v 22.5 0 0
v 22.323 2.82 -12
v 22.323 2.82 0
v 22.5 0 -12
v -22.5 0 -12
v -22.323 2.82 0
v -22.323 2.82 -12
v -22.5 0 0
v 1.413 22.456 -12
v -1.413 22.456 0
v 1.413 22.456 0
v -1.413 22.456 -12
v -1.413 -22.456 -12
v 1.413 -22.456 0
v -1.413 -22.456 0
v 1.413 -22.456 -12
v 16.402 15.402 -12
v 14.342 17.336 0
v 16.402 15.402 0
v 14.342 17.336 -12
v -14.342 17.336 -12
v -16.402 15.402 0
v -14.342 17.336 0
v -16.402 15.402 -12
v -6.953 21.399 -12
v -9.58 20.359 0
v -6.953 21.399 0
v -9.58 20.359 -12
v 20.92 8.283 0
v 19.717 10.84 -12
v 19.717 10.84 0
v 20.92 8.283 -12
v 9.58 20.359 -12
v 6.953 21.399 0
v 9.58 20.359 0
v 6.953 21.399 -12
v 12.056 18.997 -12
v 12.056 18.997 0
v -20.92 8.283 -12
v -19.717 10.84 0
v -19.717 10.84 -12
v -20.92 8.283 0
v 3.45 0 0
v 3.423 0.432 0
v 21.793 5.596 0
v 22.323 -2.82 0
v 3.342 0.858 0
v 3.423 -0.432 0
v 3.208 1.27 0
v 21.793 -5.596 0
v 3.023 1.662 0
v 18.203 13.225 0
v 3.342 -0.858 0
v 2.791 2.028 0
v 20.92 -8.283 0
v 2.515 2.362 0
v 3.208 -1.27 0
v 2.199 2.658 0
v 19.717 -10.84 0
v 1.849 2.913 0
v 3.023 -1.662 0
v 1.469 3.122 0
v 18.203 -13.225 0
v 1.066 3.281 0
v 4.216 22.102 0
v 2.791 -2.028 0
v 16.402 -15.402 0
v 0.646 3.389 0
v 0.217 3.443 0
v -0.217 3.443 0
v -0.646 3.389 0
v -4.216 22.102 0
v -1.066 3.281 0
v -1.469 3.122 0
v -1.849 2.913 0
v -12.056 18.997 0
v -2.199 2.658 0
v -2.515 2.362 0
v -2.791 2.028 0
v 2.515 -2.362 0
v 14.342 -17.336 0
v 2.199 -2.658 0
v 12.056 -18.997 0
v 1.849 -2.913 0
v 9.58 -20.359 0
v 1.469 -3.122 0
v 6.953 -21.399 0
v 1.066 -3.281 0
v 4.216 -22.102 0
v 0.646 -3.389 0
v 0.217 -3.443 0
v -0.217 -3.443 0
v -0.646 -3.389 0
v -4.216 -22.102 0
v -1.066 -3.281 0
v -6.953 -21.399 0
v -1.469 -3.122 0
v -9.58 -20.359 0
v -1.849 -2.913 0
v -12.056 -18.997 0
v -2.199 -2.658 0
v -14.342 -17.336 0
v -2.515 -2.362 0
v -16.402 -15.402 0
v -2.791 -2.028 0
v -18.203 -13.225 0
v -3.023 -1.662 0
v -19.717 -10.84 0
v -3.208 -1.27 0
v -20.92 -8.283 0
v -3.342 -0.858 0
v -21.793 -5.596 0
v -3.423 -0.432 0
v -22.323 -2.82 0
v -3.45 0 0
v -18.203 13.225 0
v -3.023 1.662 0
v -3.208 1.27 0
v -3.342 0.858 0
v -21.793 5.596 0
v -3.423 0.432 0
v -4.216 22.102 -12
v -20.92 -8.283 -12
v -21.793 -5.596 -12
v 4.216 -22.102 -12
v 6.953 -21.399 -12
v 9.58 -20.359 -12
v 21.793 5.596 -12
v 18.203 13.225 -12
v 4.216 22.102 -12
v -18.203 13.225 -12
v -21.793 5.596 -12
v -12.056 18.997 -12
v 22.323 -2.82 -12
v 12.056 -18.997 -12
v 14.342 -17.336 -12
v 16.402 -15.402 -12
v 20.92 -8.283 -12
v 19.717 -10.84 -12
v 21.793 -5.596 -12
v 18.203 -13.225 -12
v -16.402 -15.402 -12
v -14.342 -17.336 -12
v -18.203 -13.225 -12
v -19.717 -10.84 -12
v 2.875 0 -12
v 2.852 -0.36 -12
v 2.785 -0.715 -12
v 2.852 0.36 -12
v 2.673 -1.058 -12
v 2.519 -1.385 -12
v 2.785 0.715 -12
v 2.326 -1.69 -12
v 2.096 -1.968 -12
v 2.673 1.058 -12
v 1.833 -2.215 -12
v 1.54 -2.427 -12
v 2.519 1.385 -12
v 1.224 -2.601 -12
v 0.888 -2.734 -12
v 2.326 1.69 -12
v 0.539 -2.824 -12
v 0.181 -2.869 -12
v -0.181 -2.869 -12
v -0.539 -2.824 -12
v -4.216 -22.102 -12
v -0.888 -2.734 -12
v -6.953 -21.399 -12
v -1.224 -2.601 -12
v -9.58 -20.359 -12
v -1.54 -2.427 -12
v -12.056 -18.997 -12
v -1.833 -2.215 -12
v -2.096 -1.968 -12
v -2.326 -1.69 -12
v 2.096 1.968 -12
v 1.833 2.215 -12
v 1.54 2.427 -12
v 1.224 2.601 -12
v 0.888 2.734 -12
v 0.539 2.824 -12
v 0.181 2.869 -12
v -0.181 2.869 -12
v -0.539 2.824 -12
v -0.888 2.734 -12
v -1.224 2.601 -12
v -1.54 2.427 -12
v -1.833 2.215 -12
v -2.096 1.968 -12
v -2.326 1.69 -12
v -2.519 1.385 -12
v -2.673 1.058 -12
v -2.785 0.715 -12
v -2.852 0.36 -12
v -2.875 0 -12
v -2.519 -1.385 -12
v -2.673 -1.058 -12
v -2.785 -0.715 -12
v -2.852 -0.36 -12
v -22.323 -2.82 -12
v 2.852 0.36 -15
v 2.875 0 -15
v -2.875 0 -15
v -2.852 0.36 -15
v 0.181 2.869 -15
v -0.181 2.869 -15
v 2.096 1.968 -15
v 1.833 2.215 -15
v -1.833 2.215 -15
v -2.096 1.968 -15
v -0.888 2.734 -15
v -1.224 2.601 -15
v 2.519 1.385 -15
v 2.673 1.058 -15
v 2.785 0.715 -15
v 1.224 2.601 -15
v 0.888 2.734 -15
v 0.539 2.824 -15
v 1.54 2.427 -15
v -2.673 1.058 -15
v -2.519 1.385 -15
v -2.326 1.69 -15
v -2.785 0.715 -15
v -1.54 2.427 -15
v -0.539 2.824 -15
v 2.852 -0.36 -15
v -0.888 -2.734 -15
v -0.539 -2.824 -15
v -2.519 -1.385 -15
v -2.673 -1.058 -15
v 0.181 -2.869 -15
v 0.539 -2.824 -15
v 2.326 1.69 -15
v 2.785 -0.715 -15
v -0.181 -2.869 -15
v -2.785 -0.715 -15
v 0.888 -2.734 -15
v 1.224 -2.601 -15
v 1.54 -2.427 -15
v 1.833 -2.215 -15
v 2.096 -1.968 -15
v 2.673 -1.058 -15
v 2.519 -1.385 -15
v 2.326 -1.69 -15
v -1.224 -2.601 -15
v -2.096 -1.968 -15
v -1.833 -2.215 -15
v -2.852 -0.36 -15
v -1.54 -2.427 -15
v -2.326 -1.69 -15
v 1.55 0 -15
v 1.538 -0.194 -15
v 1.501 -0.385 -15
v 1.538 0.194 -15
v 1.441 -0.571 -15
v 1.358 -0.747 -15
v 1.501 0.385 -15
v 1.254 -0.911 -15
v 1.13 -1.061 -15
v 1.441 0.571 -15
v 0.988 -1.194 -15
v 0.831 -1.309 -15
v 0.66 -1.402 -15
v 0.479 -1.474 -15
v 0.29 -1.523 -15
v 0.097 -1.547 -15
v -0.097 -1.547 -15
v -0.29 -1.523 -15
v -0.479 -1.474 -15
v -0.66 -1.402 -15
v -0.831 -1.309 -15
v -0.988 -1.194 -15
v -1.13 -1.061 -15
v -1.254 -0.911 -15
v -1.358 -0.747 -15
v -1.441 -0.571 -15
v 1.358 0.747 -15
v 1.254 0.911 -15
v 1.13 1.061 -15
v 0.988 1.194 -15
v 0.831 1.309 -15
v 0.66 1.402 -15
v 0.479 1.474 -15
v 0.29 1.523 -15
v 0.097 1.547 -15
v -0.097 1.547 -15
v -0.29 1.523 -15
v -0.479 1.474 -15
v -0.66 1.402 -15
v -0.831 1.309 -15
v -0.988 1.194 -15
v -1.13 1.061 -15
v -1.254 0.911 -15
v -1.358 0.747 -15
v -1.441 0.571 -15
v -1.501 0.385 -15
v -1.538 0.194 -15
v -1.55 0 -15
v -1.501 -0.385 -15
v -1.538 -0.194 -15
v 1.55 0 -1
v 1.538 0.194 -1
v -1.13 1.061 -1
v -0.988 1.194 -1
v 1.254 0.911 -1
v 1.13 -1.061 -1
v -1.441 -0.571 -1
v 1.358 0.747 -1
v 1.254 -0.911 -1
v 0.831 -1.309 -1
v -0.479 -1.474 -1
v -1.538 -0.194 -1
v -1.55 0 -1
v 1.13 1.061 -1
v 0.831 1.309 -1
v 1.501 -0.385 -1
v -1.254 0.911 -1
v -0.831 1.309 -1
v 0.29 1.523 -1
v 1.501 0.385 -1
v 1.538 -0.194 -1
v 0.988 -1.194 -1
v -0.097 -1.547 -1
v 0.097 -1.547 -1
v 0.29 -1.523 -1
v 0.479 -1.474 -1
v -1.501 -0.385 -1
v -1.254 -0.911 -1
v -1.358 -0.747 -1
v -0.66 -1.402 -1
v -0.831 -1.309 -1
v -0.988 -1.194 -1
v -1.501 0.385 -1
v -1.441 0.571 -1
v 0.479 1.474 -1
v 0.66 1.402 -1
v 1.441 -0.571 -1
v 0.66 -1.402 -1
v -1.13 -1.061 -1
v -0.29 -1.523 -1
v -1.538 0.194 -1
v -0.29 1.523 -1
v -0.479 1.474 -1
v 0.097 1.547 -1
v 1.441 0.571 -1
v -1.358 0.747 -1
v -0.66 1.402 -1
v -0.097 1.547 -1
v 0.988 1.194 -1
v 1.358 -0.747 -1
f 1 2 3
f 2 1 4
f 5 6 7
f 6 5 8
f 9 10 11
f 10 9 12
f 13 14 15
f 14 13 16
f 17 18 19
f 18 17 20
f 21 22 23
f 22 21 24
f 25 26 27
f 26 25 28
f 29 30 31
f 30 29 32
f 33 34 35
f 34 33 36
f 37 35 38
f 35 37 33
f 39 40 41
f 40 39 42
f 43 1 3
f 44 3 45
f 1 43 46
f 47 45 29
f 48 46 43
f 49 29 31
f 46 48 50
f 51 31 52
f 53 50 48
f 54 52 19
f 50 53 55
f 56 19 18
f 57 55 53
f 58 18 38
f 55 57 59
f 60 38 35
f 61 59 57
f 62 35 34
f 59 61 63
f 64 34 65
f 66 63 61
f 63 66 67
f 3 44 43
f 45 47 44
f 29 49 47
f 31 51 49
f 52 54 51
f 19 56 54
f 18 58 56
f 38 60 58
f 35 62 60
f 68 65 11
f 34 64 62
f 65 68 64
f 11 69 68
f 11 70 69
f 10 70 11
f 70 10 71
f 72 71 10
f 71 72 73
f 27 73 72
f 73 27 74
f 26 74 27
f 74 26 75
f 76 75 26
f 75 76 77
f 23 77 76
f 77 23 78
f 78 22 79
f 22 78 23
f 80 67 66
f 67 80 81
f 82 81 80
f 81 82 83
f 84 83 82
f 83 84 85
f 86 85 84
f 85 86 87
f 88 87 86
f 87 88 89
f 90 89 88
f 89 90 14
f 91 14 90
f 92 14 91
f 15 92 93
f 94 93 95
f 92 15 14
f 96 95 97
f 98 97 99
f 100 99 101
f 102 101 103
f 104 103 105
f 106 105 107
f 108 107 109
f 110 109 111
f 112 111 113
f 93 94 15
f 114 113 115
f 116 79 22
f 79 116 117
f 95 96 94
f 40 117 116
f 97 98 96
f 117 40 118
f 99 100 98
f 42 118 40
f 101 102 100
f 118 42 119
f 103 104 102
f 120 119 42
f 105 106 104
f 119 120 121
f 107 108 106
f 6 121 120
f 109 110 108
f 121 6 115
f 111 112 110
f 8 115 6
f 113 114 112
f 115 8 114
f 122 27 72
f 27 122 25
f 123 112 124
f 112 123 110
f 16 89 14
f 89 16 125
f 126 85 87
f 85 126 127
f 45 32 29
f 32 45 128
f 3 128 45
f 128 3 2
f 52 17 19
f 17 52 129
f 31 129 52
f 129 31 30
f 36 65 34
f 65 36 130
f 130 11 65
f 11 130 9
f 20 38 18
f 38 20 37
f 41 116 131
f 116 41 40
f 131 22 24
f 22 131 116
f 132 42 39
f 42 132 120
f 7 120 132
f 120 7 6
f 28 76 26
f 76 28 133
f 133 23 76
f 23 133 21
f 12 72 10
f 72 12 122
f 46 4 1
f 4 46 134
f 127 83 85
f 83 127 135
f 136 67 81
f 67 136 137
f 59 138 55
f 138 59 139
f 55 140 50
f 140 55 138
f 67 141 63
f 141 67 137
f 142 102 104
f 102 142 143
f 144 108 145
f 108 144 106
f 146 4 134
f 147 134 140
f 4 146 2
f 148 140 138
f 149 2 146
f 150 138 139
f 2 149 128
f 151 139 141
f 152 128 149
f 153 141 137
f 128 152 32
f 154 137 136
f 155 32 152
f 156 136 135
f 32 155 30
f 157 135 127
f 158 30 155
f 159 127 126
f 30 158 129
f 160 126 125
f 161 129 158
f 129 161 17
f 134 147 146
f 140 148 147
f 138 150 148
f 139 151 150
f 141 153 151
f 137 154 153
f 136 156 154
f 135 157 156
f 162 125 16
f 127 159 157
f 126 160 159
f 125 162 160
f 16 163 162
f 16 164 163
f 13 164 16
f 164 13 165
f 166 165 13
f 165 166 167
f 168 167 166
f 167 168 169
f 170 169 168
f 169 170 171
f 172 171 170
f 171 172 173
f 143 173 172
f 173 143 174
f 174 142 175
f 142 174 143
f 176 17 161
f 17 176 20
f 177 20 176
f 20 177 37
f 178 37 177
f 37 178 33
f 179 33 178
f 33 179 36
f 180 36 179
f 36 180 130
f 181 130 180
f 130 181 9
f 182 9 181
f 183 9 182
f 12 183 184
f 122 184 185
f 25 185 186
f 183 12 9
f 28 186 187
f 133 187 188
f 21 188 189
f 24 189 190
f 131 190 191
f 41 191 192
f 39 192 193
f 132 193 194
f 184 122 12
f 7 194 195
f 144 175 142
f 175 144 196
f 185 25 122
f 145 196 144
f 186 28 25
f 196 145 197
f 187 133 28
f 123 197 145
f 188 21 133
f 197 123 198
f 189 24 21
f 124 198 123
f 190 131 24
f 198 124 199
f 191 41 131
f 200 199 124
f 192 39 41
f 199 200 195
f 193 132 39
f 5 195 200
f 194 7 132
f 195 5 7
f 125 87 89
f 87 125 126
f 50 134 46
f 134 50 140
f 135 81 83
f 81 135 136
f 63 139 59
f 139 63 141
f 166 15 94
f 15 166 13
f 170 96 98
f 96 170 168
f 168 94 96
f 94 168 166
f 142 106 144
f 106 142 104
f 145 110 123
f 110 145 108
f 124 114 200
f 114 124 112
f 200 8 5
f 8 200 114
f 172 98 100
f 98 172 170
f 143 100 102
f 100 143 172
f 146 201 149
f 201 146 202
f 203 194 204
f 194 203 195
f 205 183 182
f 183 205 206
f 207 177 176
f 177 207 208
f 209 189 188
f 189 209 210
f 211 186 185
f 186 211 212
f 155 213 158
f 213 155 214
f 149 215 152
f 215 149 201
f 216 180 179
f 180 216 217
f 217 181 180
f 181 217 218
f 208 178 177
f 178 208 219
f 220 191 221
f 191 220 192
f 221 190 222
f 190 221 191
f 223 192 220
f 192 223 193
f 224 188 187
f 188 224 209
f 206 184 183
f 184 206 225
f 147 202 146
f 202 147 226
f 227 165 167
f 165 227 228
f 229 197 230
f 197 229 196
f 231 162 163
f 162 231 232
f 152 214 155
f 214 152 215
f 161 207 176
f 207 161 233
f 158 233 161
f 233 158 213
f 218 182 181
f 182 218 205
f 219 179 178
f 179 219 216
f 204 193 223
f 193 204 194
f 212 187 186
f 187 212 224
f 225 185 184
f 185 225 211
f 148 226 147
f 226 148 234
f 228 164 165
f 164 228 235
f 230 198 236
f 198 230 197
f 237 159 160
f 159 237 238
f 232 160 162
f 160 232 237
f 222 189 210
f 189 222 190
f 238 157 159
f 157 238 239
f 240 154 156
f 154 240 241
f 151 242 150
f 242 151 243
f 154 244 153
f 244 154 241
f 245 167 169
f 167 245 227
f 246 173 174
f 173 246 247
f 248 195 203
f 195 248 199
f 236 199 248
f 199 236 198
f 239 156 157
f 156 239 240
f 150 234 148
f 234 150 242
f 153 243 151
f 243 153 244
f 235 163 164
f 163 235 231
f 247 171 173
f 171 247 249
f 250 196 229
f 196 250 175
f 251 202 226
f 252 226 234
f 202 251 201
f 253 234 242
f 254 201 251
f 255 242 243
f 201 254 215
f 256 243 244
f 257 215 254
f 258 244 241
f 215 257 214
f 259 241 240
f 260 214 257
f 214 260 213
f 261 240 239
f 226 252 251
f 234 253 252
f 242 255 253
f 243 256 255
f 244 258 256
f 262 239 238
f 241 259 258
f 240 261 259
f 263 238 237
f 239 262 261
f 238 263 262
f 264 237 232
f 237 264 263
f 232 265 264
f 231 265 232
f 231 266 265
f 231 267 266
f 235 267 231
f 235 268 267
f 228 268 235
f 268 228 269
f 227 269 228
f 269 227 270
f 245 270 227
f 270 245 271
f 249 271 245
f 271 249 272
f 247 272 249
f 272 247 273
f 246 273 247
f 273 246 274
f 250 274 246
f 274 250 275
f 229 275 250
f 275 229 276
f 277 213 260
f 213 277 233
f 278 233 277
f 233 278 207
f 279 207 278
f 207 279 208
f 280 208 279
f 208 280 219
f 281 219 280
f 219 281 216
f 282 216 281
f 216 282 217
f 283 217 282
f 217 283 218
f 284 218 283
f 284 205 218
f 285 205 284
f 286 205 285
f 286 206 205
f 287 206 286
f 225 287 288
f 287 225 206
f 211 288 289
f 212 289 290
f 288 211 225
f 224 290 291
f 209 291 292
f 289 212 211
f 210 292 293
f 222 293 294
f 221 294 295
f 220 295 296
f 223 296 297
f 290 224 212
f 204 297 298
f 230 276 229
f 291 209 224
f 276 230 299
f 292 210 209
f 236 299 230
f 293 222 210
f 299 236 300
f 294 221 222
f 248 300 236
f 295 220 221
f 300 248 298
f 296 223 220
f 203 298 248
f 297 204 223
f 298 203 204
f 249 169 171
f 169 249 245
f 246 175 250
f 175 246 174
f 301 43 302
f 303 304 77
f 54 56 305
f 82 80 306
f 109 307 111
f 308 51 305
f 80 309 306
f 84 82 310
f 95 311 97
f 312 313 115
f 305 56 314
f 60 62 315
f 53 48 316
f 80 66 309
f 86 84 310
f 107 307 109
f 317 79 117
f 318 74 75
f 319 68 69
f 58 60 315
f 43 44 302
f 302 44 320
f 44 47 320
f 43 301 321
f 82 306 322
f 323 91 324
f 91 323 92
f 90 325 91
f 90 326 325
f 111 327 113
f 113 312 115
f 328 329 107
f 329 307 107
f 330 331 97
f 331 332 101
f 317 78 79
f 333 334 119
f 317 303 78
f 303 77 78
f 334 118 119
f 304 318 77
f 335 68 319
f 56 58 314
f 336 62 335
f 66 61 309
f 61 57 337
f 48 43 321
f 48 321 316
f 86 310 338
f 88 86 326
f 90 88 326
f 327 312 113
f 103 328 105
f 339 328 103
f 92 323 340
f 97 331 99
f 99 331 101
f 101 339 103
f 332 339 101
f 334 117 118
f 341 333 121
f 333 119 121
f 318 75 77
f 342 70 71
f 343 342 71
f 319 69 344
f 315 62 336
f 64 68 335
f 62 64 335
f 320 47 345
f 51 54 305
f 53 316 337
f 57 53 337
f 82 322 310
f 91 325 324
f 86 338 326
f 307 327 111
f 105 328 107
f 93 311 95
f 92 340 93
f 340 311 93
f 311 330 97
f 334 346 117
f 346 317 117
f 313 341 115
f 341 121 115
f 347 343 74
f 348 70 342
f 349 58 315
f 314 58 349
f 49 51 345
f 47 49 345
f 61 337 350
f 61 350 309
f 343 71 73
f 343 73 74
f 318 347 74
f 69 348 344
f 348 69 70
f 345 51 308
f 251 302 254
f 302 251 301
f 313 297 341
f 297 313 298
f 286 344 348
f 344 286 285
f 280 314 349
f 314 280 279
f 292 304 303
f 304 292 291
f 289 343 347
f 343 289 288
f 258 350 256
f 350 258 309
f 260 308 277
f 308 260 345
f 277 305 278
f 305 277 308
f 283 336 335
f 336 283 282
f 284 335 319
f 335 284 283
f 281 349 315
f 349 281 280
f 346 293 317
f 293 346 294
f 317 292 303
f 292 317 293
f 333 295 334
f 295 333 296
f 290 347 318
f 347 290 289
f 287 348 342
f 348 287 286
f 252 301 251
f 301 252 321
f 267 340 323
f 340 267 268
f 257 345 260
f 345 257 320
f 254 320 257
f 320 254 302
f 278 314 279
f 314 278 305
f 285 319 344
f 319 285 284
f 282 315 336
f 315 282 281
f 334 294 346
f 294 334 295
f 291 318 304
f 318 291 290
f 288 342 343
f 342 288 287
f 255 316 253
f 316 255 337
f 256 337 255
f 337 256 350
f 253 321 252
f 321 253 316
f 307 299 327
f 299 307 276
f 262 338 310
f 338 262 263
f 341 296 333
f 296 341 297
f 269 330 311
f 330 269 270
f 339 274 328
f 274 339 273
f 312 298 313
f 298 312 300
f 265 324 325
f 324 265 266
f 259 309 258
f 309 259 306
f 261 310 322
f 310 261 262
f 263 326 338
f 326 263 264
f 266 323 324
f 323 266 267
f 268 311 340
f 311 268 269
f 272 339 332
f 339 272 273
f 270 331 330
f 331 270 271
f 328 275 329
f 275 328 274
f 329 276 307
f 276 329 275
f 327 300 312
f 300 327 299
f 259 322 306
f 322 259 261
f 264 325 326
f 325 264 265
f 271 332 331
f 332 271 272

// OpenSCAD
$fn = 50;


difference() {
	union() {
		translate(v = [0, 0, -12.0000000000]) {
			cylinder(h = 12, r = 22.5000000000);
		}
		#translate(v = [0, 0, -15.0000000000]) {
			cylinder(h = 15, r = 2.8750000000);
		}
	}
	union() {
		translate(v = [0, 0, 0]) {
			rotate(a = [0, 0, 0]) {
				difference() {
					union() {
						translate(v = [0, 0, -15.0000000000]) {
							cylinder(h = 15, r = 1.2500000000);
						}
						translate(v = [0, 0, -1.0000000000]) {
							cylinder(h = 1.0000000000, r1 = 1.5500000000, r2 = 3.4500000000);
						}
						translate(v = [0, 0, -15.0000000000]) {
							cylinder(h = 15, r = 1.5500000000);
						}
						translate(v = [0, 0, -15.0000000000]) {
							cylinder(h = 15, r = 1.2500000000);
						}
					}
					union();
				}
			}
		}
	}
}
